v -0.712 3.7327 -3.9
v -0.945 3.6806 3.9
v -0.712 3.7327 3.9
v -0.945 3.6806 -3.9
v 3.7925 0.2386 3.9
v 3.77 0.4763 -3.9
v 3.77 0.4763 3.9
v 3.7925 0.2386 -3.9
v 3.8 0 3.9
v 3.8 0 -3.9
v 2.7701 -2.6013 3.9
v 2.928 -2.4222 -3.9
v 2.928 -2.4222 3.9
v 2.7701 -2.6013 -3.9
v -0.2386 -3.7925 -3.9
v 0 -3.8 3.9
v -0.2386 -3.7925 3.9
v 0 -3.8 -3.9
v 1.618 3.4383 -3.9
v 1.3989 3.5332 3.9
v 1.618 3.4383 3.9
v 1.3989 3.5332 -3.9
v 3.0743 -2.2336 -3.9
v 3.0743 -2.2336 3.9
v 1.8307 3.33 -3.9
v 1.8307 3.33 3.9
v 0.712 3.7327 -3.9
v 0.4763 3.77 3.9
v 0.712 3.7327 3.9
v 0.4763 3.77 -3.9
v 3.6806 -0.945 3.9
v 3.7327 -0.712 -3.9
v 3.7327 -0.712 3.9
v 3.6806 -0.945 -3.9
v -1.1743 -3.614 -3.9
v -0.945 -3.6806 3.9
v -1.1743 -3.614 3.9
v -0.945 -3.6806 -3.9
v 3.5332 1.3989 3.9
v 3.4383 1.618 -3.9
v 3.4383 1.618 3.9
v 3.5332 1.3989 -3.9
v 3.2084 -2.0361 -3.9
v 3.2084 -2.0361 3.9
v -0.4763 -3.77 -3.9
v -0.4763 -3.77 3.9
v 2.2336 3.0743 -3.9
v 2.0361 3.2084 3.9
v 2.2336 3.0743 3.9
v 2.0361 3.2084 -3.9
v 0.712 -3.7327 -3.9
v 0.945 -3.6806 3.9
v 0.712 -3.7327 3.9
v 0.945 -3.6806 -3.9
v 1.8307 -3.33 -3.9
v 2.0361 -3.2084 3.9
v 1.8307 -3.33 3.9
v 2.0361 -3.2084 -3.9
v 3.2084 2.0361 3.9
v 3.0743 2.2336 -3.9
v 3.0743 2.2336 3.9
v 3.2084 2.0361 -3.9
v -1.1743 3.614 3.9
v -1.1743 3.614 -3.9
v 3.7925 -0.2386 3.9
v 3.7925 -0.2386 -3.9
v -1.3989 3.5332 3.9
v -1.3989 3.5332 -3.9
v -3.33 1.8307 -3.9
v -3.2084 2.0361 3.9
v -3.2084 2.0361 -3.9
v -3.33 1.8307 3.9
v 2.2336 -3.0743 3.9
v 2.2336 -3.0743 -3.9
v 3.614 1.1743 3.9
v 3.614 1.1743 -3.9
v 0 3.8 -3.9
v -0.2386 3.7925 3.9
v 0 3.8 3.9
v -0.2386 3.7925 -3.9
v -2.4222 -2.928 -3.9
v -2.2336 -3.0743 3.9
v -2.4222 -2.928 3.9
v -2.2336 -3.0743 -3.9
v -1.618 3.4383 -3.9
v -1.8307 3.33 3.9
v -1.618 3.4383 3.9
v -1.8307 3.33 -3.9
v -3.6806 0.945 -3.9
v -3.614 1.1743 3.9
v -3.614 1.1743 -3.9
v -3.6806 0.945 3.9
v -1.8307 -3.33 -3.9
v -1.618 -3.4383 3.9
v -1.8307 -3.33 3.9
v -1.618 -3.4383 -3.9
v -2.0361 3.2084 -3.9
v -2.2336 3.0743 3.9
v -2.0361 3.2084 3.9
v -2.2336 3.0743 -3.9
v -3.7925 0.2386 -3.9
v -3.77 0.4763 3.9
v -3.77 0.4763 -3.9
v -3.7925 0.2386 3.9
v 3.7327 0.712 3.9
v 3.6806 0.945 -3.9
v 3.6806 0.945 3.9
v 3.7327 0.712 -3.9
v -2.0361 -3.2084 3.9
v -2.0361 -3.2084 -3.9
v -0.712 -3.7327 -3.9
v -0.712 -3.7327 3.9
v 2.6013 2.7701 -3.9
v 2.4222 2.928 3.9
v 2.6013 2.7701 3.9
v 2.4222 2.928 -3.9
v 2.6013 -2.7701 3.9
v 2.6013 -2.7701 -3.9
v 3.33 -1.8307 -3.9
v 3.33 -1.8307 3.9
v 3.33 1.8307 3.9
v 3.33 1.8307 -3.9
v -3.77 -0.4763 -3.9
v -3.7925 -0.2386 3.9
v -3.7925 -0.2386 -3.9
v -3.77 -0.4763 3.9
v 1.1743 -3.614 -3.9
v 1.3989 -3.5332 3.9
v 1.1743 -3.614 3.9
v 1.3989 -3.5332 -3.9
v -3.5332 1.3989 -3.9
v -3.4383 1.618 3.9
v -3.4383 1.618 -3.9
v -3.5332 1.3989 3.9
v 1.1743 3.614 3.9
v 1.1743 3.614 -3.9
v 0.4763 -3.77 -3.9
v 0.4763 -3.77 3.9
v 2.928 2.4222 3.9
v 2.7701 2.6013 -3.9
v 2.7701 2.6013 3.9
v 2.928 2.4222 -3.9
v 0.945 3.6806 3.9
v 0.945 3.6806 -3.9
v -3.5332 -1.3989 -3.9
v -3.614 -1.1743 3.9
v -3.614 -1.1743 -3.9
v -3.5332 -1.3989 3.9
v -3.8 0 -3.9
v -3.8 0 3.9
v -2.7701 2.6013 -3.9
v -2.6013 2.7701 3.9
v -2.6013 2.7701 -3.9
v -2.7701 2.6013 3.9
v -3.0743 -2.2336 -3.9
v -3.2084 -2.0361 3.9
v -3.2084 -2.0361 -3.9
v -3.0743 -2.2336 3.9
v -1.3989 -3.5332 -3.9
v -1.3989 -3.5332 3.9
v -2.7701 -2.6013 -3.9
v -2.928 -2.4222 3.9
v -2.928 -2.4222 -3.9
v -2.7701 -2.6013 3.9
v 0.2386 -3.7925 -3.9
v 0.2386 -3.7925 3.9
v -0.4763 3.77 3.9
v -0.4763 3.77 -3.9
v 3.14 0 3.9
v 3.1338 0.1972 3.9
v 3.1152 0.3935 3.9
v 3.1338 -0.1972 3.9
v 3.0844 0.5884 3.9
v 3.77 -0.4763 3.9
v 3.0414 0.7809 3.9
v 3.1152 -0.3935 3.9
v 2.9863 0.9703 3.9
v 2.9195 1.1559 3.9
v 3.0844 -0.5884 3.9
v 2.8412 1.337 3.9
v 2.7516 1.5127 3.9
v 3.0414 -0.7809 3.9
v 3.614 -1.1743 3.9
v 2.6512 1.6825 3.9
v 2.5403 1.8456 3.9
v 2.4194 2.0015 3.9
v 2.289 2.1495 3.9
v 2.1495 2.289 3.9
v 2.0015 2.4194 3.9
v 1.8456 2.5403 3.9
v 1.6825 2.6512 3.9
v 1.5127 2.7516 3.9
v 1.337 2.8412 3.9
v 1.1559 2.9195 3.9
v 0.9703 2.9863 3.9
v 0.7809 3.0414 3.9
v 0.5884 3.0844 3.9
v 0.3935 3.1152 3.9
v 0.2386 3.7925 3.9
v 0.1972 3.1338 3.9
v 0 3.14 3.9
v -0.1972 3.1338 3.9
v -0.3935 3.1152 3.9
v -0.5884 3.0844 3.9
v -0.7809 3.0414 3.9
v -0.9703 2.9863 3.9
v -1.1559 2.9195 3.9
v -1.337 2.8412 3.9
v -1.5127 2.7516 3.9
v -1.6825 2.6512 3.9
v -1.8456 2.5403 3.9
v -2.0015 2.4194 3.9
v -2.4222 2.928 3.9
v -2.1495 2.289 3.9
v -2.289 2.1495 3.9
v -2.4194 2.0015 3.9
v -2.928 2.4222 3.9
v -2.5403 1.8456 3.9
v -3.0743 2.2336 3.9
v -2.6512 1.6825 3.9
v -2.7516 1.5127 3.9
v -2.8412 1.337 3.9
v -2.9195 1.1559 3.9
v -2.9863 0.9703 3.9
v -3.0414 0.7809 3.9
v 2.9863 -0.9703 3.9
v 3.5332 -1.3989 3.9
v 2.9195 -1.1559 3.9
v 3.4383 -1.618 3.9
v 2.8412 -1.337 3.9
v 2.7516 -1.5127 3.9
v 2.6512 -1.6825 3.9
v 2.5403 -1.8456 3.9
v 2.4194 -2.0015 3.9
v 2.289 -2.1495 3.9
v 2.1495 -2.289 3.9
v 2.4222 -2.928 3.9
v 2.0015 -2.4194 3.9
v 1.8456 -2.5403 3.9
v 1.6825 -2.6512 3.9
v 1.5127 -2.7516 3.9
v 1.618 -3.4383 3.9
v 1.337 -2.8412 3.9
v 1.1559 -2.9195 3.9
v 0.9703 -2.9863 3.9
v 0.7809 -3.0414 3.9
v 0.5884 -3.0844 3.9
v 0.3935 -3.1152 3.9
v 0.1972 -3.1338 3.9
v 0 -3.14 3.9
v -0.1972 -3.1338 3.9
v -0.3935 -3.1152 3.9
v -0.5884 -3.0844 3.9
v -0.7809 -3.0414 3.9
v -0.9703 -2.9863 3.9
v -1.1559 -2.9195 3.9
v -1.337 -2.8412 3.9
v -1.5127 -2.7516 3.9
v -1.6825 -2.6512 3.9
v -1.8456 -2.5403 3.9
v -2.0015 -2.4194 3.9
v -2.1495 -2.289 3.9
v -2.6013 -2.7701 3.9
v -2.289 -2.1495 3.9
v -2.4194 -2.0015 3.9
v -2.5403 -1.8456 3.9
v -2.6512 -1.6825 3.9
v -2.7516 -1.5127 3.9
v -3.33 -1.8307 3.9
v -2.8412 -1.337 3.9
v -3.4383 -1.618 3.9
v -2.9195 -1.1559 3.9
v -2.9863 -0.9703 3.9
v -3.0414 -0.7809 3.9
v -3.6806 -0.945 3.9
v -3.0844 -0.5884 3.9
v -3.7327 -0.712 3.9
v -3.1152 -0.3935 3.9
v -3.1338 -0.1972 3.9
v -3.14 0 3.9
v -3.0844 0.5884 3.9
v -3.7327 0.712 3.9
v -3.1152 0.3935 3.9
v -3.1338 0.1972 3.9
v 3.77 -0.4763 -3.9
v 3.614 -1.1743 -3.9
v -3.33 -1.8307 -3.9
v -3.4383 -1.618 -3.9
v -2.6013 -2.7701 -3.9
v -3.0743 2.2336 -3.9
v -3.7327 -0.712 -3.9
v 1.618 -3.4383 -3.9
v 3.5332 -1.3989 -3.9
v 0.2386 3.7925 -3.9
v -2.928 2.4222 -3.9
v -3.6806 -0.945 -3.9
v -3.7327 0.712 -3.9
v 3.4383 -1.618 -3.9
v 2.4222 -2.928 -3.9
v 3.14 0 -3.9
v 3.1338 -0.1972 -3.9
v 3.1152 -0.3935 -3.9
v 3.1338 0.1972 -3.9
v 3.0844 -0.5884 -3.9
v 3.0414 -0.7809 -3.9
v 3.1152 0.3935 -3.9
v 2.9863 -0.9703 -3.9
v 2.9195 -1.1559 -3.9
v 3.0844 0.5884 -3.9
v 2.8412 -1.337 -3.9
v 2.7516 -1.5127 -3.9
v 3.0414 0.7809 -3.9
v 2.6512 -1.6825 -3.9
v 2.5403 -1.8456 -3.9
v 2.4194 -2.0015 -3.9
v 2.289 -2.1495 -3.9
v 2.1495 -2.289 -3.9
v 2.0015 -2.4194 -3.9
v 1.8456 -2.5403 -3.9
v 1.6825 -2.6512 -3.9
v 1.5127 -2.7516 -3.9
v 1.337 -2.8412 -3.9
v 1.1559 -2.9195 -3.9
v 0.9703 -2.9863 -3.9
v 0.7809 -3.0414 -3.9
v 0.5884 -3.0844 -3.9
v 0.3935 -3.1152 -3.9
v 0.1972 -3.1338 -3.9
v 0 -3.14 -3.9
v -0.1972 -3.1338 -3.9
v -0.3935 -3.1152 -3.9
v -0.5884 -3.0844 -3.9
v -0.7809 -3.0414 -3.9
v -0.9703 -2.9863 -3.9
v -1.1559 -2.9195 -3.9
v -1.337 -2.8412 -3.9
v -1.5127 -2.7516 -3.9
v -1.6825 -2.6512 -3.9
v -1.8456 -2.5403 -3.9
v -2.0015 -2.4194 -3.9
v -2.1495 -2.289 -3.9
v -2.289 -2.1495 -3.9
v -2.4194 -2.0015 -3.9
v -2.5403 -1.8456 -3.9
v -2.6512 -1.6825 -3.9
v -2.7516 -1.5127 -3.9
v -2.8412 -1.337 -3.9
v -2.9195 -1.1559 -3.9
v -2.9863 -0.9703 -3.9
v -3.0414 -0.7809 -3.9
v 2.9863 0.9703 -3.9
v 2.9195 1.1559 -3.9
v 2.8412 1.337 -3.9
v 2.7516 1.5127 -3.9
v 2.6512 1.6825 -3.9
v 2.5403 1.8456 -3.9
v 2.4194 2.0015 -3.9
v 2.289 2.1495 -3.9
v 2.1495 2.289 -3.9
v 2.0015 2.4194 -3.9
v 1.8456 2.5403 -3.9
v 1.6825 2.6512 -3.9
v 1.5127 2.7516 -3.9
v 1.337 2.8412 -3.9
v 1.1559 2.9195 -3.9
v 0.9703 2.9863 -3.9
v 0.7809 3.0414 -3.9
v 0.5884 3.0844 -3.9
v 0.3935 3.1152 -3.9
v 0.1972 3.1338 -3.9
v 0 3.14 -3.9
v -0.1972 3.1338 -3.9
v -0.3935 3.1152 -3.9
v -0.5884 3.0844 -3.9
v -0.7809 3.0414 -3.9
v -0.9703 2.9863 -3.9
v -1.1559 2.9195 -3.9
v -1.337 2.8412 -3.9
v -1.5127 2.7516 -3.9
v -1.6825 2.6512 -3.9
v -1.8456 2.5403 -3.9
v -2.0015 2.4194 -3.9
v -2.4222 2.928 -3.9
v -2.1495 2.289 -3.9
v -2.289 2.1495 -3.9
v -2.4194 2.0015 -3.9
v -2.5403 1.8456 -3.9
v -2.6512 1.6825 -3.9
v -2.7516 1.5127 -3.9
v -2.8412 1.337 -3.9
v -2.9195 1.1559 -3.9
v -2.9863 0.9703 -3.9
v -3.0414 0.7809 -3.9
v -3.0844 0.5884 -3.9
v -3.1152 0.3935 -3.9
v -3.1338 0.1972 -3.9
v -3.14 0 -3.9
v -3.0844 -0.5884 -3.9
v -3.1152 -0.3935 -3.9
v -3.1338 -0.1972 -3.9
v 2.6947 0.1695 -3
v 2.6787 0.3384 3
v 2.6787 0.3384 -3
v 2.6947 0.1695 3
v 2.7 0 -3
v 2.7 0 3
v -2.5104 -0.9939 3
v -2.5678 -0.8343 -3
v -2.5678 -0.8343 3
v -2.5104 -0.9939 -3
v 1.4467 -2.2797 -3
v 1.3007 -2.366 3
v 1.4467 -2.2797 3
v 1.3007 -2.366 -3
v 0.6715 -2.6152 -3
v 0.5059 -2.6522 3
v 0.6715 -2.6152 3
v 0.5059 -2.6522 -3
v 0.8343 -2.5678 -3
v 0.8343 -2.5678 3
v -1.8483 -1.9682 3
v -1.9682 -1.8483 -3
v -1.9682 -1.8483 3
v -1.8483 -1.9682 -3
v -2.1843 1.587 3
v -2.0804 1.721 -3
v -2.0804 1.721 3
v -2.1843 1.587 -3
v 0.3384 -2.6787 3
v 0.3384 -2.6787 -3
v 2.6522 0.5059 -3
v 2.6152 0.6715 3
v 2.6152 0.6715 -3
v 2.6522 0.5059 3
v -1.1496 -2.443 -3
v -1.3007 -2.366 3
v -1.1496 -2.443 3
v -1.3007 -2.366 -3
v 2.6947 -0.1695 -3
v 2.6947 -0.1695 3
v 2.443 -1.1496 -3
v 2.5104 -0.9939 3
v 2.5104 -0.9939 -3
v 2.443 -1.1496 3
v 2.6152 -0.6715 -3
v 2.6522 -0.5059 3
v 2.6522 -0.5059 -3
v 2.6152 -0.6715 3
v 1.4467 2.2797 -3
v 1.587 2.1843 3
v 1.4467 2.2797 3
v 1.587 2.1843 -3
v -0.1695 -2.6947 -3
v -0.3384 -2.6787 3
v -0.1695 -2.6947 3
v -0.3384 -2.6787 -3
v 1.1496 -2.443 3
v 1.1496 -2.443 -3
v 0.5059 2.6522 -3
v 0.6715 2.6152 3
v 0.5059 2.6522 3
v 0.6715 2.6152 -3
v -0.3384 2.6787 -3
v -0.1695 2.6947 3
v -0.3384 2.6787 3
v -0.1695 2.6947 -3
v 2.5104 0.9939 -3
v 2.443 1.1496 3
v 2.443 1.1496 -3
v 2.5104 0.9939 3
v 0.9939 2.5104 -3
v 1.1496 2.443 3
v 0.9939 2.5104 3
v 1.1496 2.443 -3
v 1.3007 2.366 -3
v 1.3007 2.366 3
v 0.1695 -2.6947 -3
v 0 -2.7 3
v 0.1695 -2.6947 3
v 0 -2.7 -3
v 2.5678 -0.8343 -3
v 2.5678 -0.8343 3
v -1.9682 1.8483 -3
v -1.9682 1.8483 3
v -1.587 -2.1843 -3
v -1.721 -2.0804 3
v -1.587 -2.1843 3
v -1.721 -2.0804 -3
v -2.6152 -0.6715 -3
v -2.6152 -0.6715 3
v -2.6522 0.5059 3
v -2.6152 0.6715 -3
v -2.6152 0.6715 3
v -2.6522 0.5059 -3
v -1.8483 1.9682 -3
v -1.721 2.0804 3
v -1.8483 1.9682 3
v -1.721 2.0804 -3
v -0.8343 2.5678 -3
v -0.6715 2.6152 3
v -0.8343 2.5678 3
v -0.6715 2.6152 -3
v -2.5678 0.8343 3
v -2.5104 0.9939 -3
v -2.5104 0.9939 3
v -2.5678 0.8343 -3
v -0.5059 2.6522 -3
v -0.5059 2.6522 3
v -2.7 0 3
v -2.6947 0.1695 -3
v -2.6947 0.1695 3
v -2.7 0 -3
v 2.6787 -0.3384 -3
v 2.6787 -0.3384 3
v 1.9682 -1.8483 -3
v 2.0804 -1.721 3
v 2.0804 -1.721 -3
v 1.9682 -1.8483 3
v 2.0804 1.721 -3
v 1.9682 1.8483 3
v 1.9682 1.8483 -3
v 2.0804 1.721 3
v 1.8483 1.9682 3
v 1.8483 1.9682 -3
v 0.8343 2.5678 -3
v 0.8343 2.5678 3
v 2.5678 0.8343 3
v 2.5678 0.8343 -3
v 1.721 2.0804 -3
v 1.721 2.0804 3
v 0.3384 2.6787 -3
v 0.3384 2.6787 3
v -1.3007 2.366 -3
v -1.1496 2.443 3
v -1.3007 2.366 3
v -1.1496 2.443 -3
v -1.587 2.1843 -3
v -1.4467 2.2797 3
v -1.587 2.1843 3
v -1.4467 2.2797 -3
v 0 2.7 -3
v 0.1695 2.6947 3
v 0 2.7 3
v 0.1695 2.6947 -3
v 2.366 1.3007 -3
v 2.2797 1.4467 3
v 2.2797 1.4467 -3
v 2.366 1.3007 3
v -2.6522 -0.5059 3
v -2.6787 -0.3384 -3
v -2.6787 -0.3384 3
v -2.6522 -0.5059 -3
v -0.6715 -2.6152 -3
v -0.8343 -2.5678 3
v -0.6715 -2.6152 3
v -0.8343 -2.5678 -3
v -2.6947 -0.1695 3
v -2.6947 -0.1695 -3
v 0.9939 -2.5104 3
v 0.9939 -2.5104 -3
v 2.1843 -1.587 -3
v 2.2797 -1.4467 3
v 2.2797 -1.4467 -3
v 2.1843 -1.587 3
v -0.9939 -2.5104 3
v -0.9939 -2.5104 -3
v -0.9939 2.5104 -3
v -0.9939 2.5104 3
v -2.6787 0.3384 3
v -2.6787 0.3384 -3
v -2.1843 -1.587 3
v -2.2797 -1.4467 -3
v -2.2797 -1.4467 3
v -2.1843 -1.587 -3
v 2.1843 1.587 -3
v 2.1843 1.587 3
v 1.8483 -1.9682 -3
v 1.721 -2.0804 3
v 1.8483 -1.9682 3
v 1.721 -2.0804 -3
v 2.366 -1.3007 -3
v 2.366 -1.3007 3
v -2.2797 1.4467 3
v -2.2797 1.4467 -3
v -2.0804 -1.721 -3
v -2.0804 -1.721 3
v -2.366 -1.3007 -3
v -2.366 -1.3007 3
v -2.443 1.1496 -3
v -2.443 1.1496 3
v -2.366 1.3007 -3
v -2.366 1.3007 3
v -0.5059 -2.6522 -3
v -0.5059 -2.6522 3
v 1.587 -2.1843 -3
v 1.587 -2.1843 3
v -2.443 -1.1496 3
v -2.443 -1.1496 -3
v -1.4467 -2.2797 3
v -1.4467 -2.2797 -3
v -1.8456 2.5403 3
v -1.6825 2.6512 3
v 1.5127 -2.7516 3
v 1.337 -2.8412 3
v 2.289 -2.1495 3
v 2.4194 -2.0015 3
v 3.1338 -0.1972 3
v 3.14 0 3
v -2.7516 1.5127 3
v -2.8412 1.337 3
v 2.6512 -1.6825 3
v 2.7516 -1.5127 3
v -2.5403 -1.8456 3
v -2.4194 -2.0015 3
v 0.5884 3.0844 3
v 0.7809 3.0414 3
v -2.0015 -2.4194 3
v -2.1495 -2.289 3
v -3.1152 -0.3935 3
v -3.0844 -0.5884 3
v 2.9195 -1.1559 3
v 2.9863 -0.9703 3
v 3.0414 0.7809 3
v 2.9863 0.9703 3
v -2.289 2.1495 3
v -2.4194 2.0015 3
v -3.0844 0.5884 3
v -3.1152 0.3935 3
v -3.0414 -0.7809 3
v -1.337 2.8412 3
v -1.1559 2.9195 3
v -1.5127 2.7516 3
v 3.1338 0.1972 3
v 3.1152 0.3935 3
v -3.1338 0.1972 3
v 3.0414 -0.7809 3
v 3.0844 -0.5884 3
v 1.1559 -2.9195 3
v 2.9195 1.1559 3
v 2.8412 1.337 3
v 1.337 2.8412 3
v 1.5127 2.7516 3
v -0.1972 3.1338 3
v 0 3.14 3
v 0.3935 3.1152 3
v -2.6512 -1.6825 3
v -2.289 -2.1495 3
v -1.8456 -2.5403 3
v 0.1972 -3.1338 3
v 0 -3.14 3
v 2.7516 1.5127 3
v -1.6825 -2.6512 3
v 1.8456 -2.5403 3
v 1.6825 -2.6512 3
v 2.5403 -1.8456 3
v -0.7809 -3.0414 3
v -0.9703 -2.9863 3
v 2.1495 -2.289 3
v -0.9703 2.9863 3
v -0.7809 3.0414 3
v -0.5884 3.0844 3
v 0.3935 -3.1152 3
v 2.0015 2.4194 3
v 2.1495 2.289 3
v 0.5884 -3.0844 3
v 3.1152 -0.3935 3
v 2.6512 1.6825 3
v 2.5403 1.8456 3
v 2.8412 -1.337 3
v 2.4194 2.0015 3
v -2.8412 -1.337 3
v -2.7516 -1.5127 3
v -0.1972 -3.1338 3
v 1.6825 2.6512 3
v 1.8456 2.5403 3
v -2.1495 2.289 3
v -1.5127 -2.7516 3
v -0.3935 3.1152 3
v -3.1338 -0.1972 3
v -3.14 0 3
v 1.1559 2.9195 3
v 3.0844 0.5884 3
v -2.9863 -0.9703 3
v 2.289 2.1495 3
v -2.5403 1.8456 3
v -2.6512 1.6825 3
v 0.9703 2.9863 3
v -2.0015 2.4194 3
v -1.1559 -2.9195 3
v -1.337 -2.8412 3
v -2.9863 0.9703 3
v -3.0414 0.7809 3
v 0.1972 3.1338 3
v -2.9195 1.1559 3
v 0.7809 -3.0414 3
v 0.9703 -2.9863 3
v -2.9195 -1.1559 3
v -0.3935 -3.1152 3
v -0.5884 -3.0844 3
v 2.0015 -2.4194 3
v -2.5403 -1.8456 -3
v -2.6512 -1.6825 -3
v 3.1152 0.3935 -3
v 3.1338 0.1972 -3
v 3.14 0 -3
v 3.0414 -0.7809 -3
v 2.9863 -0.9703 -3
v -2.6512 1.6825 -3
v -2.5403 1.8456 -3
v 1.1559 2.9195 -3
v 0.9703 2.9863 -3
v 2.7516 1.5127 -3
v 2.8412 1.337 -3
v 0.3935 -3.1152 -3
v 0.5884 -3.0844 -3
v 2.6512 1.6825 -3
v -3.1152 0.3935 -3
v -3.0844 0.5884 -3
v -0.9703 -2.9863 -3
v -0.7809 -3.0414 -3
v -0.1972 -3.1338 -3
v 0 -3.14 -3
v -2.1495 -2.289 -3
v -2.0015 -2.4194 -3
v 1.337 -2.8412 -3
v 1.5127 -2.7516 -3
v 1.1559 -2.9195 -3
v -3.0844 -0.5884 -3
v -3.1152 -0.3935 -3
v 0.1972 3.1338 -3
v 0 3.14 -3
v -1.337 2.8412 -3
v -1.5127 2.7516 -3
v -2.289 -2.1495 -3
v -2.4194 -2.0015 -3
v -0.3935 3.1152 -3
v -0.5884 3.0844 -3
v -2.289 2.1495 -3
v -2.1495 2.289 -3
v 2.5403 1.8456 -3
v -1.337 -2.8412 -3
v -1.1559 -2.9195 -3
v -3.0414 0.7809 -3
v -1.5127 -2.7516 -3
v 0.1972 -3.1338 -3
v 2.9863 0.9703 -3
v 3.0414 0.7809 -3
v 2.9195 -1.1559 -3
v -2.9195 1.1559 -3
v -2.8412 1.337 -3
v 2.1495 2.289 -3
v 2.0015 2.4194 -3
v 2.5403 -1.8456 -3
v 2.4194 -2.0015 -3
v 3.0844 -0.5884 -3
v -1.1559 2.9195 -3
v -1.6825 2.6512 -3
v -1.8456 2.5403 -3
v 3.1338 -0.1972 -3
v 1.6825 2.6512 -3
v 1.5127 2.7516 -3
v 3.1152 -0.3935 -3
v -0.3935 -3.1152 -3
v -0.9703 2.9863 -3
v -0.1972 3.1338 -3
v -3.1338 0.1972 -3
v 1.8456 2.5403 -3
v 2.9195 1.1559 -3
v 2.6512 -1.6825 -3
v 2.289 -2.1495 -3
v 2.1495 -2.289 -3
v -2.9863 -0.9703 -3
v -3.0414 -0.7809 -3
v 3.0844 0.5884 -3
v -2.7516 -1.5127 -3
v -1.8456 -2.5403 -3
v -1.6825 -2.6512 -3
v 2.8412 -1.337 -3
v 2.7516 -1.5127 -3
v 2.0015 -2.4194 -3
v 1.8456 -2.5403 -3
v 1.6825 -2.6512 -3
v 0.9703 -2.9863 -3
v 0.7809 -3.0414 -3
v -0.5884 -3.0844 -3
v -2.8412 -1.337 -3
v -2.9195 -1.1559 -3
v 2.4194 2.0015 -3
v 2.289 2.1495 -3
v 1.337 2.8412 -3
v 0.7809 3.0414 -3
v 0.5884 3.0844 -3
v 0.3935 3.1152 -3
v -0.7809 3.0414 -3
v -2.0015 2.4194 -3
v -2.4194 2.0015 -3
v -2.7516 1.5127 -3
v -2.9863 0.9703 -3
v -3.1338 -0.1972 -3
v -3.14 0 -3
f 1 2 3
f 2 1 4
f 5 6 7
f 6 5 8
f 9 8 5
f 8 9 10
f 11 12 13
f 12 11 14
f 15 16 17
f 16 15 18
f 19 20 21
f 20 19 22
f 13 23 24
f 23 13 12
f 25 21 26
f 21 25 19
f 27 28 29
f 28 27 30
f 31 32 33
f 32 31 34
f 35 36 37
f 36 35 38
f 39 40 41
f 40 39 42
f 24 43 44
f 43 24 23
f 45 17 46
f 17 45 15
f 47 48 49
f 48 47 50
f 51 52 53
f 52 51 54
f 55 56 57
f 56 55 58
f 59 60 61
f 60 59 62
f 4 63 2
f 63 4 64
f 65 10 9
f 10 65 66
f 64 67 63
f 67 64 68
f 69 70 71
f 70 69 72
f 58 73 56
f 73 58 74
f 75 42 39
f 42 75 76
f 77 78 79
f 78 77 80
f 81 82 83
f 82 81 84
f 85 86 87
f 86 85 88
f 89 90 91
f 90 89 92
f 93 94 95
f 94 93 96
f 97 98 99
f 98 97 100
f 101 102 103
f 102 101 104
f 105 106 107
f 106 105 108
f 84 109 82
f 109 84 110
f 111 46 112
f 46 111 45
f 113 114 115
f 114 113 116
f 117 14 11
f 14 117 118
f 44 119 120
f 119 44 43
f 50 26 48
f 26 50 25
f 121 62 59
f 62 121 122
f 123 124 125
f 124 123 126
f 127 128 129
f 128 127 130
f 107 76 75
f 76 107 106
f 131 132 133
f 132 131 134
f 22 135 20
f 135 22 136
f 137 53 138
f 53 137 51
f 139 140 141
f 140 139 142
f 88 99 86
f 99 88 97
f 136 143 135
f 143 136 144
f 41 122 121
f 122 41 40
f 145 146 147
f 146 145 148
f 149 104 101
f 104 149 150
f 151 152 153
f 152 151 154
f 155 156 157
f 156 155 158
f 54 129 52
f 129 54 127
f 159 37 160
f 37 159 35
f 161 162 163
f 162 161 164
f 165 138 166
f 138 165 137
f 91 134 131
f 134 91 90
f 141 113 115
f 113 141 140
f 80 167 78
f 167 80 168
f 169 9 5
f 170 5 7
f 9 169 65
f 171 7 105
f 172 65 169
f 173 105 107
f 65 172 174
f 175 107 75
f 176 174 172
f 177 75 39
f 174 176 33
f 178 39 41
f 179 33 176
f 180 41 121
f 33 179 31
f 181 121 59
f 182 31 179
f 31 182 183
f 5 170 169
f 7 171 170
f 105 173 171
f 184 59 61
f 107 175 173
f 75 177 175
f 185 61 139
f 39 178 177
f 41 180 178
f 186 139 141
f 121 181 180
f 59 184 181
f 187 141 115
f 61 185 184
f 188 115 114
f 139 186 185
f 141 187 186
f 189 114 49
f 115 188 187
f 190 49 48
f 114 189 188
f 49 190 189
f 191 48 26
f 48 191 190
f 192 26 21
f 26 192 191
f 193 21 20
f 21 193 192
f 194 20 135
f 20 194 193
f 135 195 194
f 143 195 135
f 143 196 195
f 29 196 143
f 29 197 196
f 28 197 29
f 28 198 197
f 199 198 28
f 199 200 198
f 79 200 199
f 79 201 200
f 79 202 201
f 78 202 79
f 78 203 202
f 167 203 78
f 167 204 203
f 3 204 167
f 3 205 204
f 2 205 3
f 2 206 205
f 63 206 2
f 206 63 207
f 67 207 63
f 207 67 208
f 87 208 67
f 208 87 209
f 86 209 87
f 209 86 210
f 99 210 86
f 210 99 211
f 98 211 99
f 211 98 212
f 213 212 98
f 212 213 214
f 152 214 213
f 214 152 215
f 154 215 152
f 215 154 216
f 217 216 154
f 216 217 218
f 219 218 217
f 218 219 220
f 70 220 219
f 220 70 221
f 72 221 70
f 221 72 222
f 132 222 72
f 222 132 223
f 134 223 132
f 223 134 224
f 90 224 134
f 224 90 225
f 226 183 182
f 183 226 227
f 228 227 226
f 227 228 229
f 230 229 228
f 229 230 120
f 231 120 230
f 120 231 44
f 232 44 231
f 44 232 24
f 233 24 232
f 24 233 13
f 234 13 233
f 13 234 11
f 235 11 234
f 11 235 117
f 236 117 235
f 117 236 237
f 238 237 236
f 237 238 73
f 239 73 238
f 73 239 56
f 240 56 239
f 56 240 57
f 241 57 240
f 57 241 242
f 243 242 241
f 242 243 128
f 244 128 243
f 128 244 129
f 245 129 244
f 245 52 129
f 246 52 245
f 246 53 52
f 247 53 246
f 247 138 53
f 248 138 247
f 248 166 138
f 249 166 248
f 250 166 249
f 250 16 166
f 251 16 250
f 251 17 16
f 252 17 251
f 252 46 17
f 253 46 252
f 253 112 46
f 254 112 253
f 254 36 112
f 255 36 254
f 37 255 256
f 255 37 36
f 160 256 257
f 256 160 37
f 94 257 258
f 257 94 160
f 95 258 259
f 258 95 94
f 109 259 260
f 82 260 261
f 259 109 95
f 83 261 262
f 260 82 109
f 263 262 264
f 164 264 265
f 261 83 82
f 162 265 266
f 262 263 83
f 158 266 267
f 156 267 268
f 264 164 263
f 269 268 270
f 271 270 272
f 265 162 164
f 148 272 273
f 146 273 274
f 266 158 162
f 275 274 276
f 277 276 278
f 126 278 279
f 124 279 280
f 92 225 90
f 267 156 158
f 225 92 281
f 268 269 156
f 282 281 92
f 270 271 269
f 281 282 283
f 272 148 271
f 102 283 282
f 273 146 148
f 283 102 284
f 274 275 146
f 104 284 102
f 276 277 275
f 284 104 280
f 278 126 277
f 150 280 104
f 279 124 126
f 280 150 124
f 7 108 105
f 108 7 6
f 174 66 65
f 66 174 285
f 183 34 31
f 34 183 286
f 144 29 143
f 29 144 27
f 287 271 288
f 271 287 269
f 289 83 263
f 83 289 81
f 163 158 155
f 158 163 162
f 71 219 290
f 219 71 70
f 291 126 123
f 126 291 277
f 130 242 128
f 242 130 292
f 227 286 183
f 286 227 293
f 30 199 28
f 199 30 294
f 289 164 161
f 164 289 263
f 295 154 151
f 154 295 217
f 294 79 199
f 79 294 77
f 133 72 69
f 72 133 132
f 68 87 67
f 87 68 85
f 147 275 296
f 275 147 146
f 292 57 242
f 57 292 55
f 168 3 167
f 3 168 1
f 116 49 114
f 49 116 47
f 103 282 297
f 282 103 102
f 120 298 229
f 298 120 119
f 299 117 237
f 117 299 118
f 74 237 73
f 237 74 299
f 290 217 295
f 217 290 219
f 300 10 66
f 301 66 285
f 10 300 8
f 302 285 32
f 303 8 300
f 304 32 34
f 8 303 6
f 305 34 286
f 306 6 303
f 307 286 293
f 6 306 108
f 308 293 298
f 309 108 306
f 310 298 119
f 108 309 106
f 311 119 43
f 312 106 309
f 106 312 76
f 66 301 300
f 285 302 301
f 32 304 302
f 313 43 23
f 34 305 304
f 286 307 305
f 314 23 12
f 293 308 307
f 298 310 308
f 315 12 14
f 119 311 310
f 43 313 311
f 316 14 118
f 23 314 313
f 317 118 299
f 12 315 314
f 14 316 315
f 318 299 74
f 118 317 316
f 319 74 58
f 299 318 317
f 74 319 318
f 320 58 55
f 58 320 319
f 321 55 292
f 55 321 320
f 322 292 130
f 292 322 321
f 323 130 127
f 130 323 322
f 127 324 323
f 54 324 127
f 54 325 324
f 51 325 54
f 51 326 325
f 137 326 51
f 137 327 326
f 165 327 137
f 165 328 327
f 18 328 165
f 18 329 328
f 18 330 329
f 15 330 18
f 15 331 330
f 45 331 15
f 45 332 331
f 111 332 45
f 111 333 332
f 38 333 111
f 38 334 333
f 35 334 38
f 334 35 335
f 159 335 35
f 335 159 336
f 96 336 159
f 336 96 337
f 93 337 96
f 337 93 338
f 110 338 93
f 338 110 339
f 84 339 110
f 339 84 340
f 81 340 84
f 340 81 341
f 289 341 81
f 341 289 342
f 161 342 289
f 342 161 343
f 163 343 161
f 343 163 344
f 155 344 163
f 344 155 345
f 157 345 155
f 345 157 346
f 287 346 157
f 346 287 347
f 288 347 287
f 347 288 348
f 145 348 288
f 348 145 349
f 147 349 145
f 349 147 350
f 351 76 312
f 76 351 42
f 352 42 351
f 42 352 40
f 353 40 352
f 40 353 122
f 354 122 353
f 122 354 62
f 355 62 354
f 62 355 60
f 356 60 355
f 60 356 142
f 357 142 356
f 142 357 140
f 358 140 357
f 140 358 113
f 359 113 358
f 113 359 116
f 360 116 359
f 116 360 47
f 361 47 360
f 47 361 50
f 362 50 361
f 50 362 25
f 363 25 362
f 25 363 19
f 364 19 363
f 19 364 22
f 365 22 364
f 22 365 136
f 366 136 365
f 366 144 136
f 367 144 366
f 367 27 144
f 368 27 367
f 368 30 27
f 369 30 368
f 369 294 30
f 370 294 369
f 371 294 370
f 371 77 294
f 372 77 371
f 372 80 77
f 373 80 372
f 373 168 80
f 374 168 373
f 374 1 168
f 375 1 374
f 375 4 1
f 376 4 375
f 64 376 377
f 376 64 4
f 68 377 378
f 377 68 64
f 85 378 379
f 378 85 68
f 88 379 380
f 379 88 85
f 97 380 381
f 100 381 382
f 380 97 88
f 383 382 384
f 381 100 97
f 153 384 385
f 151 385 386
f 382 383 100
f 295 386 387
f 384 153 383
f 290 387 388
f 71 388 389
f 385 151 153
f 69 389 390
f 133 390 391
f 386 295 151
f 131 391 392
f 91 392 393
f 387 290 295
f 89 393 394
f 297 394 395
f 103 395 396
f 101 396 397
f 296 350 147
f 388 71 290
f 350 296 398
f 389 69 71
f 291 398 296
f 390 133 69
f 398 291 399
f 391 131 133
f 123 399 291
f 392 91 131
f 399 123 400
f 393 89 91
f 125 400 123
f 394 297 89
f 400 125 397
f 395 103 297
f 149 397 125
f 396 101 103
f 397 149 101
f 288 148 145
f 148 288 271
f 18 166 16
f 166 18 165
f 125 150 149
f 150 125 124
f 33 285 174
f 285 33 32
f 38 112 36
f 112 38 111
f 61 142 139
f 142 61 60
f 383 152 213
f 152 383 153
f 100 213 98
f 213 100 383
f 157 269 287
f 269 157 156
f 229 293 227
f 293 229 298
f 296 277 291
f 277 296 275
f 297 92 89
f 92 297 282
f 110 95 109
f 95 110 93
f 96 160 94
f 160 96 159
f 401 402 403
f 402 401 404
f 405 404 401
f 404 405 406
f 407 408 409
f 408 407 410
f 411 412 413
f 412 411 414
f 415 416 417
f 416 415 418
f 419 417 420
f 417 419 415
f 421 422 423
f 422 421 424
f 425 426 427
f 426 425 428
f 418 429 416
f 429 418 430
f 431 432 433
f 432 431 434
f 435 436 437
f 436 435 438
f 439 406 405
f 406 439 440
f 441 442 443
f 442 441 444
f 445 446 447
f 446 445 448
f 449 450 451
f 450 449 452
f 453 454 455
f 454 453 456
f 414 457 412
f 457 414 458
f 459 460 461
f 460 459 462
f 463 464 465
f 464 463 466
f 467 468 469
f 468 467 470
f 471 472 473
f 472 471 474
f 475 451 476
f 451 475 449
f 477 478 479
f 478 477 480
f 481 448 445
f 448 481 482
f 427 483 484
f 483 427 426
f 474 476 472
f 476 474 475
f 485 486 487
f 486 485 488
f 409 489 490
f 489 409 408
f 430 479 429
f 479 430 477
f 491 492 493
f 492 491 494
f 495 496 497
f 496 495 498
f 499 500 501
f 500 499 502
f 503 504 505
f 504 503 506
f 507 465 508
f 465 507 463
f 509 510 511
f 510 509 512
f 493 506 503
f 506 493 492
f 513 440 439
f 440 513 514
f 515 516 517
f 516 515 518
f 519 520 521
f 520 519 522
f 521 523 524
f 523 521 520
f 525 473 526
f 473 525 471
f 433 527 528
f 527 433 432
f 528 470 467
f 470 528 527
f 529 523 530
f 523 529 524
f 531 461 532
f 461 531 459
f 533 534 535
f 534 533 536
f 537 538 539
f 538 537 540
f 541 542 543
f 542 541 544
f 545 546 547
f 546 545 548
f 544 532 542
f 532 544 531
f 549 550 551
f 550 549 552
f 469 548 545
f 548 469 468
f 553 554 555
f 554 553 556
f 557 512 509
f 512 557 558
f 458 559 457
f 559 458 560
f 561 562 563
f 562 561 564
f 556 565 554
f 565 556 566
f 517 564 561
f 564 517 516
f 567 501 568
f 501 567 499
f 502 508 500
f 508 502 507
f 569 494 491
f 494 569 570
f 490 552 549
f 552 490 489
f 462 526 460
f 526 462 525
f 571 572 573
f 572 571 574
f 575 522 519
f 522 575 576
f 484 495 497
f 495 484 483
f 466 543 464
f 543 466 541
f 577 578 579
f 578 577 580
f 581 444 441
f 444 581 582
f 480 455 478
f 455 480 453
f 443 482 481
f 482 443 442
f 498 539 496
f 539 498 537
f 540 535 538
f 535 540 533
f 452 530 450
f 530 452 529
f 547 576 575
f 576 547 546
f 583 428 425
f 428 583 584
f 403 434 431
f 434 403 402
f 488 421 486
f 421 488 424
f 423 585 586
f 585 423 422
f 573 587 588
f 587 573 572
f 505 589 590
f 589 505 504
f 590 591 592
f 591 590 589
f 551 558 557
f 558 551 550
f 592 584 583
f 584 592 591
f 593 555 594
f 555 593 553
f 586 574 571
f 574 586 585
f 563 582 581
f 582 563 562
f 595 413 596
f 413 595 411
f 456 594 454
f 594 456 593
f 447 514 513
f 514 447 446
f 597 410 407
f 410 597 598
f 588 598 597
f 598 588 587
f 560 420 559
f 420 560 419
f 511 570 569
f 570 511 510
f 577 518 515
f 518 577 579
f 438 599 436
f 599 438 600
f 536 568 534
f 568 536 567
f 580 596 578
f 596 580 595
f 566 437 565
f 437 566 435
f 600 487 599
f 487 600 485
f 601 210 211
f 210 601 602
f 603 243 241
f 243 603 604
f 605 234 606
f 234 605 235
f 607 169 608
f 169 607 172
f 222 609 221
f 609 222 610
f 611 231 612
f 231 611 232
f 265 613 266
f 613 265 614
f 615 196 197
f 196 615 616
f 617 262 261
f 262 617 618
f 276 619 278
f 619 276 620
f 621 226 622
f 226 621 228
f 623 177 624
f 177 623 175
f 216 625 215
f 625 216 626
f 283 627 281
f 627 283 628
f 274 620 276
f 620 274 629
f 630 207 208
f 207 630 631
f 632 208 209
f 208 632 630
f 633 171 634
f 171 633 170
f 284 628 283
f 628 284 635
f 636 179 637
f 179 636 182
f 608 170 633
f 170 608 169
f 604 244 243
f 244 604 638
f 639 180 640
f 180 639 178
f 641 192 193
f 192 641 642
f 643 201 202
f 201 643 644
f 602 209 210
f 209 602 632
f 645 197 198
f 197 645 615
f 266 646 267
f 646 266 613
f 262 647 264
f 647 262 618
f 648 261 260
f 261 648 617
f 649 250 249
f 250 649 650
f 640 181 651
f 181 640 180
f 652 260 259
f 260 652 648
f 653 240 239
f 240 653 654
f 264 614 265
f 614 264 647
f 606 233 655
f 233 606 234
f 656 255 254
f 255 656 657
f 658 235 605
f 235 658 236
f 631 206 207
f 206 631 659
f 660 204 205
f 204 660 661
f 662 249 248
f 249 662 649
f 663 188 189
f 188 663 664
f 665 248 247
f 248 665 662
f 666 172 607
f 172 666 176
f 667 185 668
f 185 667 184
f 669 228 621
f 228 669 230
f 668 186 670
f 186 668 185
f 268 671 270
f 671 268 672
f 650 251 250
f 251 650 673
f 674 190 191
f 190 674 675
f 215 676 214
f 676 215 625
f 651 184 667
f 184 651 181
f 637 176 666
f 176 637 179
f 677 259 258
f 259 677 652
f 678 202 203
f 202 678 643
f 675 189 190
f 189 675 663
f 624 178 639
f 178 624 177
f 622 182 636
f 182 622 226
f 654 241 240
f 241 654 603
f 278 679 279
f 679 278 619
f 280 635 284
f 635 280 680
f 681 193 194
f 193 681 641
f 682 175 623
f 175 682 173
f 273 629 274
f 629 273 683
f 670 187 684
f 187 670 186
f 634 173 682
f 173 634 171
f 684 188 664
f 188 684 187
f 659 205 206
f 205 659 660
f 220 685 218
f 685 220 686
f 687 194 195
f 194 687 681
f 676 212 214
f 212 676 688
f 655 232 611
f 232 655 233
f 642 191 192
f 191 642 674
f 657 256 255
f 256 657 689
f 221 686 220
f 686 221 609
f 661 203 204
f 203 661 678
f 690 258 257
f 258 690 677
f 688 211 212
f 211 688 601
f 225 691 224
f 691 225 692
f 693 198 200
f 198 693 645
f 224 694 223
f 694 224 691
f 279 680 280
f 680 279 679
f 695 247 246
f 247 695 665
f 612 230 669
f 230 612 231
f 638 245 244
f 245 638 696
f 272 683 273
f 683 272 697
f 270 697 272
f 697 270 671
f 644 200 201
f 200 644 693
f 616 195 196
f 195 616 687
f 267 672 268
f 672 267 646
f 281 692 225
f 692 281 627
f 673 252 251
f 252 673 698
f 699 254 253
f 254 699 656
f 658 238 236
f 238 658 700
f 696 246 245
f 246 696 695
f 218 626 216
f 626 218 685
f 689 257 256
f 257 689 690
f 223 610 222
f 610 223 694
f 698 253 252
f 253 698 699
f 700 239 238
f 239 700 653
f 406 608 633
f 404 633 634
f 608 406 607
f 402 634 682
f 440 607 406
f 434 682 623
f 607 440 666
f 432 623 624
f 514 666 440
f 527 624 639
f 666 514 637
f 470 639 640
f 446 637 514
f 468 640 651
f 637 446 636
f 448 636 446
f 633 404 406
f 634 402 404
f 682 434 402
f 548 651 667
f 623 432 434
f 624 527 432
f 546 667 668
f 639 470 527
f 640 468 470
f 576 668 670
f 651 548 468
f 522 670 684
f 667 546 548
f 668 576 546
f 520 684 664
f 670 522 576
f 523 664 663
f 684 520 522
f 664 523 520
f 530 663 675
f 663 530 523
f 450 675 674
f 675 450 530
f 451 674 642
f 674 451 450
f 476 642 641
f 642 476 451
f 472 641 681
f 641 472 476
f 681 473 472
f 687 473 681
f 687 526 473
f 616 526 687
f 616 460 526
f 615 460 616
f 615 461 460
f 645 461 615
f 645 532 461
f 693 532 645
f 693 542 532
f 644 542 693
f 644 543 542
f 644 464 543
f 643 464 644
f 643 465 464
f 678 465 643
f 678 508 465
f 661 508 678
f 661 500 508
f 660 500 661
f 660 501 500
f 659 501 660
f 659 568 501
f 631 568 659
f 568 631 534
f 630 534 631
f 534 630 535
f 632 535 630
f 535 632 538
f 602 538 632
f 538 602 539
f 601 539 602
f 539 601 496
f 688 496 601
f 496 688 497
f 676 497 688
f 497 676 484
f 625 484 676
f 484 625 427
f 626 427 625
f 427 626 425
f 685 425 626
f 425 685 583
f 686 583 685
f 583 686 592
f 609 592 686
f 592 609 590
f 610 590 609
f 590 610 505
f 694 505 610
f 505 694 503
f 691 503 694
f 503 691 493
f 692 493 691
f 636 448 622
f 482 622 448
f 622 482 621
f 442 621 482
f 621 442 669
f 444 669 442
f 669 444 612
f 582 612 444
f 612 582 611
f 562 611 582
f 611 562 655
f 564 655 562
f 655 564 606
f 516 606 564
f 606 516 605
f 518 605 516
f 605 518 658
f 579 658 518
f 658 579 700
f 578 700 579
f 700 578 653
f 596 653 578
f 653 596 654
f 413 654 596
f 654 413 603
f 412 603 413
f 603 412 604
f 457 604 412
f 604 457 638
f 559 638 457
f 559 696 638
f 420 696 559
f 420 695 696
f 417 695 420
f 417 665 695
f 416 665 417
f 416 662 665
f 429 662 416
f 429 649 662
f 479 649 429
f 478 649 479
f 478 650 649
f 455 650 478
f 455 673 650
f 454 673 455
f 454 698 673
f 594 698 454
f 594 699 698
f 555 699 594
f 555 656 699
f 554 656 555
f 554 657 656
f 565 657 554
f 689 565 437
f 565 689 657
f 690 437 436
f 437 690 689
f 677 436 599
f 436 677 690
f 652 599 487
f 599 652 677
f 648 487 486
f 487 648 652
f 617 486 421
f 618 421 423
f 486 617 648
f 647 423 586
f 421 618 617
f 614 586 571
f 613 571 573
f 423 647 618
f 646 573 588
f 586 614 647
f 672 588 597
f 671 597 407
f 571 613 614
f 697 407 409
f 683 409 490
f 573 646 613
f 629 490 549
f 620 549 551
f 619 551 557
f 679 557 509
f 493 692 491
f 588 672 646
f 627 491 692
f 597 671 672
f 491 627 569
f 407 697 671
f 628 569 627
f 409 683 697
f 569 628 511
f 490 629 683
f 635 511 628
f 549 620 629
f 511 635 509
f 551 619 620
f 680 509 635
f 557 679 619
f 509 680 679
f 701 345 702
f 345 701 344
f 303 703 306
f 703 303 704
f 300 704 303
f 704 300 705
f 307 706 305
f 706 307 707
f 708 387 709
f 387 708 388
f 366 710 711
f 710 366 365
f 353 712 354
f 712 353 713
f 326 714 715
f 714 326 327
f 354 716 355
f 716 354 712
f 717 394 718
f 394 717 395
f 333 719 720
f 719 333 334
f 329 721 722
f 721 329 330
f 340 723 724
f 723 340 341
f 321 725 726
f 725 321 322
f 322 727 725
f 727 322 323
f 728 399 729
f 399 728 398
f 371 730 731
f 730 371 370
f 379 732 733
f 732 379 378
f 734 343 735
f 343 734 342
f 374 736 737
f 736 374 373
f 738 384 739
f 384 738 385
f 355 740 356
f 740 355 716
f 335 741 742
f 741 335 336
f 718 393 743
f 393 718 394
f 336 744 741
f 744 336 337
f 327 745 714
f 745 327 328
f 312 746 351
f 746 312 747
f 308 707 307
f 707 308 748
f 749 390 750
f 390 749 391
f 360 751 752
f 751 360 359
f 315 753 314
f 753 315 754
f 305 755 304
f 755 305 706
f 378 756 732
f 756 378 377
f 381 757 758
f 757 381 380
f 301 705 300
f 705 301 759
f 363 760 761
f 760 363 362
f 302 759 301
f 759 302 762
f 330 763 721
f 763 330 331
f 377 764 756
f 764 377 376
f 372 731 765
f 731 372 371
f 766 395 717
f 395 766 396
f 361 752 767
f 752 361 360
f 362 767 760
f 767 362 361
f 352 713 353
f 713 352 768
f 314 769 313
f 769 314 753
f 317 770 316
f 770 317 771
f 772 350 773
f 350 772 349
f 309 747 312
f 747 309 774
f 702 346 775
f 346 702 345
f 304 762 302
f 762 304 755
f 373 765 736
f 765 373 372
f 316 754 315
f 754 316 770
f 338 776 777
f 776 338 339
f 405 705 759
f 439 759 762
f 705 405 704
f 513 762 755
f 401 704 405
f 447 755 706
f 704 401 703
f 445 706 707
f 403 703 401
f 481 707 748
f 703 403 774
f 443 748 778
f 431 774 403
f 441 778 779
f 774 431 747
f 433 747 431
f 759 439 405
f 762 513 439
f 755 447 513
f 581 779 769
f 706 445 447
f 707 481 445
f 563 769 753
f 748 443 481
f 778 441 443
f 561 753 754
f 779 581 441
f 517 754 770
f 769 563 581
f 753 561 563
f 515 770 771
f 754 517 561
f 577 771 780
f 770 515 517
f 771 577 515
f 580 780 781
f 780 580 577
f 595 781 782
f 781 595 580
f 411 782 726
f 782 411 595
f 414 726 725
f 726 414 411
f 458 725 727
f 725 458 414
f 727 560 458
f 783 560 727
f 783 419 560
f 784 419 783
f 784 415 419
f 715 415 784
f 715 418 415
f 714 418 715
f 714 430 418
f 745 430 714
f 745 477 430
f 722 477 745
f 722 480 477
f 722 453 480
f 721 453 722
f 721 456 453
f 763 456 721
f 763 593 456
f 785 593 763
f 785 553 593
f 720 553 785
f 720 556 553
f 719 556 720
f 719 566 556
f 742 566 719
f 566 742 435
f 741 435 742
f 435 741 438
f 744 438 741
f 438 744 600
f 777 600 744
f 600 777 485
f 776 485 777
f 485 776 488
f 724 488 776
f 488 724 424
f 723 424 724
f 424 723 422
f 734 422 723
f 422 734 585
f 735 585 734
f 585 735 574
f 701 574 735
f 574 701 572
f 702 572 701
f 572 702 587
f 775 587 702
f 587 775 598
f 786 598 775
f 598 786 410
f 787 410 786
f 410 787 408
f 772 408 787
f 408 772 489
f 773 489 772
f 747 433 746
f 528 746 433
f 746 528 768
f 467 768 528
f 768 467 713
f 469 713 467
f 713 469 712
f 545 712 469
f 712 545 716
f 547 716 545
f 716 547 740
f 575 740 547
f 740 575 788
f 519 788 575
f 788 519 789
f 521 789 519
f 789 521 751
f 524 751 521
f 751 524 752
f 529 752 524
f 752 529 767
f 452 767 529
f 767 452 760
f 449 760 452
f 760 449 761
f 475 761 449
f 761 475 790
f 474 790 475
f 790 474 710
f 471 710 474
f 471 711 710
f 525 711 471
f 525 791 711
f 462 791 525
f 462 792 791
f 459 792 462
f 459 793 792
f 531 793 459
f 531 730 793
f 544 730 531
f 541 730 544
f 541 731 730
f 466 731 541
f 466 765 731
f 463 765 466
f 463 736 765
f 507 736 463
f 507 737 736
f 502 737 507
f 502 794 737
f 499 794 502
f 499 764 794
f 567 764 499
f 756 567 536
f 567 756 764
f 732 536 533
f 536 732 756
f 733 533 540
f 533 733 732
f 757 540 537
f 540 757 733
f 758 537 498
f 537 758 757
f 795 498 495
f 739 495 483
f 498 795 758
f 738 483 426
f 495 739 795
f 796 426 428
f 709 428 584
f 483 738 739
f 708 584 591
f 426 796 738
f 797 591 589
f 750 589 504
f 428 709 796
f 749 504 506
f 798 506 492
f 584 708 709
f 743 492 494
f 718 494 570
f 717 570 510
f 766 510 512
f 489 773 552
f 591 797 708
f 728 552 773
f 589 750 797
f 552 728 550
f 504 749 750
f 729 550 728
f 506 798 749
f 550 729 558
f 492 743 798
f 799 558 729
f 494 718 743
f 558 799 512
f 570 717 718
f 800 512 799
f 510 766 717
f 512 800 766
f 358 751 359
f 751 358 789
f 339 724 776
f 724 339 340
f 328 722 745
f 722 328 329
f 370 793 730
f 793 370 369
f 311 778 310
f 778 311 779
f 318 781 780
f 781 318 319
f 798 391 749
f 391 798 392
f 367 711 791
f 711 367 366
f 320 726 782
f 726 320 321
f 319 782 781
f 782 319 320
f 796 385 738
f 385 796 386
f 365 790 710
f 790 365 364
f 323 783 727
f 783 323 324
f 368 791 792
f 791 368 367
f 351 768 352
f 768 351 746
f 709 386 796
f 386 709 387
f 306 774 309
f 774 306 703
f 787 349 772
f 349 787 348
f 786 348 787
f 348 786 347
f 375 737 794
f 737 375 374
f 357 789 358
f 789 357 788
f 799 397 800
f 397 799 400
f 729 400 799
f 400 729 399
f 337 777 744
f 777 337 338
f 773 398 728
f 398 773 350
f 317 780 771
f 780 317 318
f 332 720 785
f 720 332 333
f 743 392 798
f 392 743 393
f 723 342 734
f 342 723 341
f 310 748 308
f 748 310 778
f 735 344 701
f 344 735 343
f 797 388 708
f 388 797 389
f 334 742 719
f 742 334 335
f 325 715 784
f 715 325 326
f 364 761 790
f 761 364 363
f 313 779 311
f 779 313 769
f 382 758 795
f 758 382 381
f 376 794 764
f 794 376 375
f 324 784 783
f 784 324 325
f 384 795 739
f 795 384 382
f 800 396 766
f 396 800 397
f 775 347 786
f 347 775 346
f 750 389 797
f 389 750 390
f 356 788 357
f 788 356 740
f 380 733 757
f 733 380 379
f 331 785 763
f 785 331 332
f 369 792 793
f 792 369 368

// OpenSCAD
// Simple 1x1 round test

use <anybeam.scad>

anybeam("O");
